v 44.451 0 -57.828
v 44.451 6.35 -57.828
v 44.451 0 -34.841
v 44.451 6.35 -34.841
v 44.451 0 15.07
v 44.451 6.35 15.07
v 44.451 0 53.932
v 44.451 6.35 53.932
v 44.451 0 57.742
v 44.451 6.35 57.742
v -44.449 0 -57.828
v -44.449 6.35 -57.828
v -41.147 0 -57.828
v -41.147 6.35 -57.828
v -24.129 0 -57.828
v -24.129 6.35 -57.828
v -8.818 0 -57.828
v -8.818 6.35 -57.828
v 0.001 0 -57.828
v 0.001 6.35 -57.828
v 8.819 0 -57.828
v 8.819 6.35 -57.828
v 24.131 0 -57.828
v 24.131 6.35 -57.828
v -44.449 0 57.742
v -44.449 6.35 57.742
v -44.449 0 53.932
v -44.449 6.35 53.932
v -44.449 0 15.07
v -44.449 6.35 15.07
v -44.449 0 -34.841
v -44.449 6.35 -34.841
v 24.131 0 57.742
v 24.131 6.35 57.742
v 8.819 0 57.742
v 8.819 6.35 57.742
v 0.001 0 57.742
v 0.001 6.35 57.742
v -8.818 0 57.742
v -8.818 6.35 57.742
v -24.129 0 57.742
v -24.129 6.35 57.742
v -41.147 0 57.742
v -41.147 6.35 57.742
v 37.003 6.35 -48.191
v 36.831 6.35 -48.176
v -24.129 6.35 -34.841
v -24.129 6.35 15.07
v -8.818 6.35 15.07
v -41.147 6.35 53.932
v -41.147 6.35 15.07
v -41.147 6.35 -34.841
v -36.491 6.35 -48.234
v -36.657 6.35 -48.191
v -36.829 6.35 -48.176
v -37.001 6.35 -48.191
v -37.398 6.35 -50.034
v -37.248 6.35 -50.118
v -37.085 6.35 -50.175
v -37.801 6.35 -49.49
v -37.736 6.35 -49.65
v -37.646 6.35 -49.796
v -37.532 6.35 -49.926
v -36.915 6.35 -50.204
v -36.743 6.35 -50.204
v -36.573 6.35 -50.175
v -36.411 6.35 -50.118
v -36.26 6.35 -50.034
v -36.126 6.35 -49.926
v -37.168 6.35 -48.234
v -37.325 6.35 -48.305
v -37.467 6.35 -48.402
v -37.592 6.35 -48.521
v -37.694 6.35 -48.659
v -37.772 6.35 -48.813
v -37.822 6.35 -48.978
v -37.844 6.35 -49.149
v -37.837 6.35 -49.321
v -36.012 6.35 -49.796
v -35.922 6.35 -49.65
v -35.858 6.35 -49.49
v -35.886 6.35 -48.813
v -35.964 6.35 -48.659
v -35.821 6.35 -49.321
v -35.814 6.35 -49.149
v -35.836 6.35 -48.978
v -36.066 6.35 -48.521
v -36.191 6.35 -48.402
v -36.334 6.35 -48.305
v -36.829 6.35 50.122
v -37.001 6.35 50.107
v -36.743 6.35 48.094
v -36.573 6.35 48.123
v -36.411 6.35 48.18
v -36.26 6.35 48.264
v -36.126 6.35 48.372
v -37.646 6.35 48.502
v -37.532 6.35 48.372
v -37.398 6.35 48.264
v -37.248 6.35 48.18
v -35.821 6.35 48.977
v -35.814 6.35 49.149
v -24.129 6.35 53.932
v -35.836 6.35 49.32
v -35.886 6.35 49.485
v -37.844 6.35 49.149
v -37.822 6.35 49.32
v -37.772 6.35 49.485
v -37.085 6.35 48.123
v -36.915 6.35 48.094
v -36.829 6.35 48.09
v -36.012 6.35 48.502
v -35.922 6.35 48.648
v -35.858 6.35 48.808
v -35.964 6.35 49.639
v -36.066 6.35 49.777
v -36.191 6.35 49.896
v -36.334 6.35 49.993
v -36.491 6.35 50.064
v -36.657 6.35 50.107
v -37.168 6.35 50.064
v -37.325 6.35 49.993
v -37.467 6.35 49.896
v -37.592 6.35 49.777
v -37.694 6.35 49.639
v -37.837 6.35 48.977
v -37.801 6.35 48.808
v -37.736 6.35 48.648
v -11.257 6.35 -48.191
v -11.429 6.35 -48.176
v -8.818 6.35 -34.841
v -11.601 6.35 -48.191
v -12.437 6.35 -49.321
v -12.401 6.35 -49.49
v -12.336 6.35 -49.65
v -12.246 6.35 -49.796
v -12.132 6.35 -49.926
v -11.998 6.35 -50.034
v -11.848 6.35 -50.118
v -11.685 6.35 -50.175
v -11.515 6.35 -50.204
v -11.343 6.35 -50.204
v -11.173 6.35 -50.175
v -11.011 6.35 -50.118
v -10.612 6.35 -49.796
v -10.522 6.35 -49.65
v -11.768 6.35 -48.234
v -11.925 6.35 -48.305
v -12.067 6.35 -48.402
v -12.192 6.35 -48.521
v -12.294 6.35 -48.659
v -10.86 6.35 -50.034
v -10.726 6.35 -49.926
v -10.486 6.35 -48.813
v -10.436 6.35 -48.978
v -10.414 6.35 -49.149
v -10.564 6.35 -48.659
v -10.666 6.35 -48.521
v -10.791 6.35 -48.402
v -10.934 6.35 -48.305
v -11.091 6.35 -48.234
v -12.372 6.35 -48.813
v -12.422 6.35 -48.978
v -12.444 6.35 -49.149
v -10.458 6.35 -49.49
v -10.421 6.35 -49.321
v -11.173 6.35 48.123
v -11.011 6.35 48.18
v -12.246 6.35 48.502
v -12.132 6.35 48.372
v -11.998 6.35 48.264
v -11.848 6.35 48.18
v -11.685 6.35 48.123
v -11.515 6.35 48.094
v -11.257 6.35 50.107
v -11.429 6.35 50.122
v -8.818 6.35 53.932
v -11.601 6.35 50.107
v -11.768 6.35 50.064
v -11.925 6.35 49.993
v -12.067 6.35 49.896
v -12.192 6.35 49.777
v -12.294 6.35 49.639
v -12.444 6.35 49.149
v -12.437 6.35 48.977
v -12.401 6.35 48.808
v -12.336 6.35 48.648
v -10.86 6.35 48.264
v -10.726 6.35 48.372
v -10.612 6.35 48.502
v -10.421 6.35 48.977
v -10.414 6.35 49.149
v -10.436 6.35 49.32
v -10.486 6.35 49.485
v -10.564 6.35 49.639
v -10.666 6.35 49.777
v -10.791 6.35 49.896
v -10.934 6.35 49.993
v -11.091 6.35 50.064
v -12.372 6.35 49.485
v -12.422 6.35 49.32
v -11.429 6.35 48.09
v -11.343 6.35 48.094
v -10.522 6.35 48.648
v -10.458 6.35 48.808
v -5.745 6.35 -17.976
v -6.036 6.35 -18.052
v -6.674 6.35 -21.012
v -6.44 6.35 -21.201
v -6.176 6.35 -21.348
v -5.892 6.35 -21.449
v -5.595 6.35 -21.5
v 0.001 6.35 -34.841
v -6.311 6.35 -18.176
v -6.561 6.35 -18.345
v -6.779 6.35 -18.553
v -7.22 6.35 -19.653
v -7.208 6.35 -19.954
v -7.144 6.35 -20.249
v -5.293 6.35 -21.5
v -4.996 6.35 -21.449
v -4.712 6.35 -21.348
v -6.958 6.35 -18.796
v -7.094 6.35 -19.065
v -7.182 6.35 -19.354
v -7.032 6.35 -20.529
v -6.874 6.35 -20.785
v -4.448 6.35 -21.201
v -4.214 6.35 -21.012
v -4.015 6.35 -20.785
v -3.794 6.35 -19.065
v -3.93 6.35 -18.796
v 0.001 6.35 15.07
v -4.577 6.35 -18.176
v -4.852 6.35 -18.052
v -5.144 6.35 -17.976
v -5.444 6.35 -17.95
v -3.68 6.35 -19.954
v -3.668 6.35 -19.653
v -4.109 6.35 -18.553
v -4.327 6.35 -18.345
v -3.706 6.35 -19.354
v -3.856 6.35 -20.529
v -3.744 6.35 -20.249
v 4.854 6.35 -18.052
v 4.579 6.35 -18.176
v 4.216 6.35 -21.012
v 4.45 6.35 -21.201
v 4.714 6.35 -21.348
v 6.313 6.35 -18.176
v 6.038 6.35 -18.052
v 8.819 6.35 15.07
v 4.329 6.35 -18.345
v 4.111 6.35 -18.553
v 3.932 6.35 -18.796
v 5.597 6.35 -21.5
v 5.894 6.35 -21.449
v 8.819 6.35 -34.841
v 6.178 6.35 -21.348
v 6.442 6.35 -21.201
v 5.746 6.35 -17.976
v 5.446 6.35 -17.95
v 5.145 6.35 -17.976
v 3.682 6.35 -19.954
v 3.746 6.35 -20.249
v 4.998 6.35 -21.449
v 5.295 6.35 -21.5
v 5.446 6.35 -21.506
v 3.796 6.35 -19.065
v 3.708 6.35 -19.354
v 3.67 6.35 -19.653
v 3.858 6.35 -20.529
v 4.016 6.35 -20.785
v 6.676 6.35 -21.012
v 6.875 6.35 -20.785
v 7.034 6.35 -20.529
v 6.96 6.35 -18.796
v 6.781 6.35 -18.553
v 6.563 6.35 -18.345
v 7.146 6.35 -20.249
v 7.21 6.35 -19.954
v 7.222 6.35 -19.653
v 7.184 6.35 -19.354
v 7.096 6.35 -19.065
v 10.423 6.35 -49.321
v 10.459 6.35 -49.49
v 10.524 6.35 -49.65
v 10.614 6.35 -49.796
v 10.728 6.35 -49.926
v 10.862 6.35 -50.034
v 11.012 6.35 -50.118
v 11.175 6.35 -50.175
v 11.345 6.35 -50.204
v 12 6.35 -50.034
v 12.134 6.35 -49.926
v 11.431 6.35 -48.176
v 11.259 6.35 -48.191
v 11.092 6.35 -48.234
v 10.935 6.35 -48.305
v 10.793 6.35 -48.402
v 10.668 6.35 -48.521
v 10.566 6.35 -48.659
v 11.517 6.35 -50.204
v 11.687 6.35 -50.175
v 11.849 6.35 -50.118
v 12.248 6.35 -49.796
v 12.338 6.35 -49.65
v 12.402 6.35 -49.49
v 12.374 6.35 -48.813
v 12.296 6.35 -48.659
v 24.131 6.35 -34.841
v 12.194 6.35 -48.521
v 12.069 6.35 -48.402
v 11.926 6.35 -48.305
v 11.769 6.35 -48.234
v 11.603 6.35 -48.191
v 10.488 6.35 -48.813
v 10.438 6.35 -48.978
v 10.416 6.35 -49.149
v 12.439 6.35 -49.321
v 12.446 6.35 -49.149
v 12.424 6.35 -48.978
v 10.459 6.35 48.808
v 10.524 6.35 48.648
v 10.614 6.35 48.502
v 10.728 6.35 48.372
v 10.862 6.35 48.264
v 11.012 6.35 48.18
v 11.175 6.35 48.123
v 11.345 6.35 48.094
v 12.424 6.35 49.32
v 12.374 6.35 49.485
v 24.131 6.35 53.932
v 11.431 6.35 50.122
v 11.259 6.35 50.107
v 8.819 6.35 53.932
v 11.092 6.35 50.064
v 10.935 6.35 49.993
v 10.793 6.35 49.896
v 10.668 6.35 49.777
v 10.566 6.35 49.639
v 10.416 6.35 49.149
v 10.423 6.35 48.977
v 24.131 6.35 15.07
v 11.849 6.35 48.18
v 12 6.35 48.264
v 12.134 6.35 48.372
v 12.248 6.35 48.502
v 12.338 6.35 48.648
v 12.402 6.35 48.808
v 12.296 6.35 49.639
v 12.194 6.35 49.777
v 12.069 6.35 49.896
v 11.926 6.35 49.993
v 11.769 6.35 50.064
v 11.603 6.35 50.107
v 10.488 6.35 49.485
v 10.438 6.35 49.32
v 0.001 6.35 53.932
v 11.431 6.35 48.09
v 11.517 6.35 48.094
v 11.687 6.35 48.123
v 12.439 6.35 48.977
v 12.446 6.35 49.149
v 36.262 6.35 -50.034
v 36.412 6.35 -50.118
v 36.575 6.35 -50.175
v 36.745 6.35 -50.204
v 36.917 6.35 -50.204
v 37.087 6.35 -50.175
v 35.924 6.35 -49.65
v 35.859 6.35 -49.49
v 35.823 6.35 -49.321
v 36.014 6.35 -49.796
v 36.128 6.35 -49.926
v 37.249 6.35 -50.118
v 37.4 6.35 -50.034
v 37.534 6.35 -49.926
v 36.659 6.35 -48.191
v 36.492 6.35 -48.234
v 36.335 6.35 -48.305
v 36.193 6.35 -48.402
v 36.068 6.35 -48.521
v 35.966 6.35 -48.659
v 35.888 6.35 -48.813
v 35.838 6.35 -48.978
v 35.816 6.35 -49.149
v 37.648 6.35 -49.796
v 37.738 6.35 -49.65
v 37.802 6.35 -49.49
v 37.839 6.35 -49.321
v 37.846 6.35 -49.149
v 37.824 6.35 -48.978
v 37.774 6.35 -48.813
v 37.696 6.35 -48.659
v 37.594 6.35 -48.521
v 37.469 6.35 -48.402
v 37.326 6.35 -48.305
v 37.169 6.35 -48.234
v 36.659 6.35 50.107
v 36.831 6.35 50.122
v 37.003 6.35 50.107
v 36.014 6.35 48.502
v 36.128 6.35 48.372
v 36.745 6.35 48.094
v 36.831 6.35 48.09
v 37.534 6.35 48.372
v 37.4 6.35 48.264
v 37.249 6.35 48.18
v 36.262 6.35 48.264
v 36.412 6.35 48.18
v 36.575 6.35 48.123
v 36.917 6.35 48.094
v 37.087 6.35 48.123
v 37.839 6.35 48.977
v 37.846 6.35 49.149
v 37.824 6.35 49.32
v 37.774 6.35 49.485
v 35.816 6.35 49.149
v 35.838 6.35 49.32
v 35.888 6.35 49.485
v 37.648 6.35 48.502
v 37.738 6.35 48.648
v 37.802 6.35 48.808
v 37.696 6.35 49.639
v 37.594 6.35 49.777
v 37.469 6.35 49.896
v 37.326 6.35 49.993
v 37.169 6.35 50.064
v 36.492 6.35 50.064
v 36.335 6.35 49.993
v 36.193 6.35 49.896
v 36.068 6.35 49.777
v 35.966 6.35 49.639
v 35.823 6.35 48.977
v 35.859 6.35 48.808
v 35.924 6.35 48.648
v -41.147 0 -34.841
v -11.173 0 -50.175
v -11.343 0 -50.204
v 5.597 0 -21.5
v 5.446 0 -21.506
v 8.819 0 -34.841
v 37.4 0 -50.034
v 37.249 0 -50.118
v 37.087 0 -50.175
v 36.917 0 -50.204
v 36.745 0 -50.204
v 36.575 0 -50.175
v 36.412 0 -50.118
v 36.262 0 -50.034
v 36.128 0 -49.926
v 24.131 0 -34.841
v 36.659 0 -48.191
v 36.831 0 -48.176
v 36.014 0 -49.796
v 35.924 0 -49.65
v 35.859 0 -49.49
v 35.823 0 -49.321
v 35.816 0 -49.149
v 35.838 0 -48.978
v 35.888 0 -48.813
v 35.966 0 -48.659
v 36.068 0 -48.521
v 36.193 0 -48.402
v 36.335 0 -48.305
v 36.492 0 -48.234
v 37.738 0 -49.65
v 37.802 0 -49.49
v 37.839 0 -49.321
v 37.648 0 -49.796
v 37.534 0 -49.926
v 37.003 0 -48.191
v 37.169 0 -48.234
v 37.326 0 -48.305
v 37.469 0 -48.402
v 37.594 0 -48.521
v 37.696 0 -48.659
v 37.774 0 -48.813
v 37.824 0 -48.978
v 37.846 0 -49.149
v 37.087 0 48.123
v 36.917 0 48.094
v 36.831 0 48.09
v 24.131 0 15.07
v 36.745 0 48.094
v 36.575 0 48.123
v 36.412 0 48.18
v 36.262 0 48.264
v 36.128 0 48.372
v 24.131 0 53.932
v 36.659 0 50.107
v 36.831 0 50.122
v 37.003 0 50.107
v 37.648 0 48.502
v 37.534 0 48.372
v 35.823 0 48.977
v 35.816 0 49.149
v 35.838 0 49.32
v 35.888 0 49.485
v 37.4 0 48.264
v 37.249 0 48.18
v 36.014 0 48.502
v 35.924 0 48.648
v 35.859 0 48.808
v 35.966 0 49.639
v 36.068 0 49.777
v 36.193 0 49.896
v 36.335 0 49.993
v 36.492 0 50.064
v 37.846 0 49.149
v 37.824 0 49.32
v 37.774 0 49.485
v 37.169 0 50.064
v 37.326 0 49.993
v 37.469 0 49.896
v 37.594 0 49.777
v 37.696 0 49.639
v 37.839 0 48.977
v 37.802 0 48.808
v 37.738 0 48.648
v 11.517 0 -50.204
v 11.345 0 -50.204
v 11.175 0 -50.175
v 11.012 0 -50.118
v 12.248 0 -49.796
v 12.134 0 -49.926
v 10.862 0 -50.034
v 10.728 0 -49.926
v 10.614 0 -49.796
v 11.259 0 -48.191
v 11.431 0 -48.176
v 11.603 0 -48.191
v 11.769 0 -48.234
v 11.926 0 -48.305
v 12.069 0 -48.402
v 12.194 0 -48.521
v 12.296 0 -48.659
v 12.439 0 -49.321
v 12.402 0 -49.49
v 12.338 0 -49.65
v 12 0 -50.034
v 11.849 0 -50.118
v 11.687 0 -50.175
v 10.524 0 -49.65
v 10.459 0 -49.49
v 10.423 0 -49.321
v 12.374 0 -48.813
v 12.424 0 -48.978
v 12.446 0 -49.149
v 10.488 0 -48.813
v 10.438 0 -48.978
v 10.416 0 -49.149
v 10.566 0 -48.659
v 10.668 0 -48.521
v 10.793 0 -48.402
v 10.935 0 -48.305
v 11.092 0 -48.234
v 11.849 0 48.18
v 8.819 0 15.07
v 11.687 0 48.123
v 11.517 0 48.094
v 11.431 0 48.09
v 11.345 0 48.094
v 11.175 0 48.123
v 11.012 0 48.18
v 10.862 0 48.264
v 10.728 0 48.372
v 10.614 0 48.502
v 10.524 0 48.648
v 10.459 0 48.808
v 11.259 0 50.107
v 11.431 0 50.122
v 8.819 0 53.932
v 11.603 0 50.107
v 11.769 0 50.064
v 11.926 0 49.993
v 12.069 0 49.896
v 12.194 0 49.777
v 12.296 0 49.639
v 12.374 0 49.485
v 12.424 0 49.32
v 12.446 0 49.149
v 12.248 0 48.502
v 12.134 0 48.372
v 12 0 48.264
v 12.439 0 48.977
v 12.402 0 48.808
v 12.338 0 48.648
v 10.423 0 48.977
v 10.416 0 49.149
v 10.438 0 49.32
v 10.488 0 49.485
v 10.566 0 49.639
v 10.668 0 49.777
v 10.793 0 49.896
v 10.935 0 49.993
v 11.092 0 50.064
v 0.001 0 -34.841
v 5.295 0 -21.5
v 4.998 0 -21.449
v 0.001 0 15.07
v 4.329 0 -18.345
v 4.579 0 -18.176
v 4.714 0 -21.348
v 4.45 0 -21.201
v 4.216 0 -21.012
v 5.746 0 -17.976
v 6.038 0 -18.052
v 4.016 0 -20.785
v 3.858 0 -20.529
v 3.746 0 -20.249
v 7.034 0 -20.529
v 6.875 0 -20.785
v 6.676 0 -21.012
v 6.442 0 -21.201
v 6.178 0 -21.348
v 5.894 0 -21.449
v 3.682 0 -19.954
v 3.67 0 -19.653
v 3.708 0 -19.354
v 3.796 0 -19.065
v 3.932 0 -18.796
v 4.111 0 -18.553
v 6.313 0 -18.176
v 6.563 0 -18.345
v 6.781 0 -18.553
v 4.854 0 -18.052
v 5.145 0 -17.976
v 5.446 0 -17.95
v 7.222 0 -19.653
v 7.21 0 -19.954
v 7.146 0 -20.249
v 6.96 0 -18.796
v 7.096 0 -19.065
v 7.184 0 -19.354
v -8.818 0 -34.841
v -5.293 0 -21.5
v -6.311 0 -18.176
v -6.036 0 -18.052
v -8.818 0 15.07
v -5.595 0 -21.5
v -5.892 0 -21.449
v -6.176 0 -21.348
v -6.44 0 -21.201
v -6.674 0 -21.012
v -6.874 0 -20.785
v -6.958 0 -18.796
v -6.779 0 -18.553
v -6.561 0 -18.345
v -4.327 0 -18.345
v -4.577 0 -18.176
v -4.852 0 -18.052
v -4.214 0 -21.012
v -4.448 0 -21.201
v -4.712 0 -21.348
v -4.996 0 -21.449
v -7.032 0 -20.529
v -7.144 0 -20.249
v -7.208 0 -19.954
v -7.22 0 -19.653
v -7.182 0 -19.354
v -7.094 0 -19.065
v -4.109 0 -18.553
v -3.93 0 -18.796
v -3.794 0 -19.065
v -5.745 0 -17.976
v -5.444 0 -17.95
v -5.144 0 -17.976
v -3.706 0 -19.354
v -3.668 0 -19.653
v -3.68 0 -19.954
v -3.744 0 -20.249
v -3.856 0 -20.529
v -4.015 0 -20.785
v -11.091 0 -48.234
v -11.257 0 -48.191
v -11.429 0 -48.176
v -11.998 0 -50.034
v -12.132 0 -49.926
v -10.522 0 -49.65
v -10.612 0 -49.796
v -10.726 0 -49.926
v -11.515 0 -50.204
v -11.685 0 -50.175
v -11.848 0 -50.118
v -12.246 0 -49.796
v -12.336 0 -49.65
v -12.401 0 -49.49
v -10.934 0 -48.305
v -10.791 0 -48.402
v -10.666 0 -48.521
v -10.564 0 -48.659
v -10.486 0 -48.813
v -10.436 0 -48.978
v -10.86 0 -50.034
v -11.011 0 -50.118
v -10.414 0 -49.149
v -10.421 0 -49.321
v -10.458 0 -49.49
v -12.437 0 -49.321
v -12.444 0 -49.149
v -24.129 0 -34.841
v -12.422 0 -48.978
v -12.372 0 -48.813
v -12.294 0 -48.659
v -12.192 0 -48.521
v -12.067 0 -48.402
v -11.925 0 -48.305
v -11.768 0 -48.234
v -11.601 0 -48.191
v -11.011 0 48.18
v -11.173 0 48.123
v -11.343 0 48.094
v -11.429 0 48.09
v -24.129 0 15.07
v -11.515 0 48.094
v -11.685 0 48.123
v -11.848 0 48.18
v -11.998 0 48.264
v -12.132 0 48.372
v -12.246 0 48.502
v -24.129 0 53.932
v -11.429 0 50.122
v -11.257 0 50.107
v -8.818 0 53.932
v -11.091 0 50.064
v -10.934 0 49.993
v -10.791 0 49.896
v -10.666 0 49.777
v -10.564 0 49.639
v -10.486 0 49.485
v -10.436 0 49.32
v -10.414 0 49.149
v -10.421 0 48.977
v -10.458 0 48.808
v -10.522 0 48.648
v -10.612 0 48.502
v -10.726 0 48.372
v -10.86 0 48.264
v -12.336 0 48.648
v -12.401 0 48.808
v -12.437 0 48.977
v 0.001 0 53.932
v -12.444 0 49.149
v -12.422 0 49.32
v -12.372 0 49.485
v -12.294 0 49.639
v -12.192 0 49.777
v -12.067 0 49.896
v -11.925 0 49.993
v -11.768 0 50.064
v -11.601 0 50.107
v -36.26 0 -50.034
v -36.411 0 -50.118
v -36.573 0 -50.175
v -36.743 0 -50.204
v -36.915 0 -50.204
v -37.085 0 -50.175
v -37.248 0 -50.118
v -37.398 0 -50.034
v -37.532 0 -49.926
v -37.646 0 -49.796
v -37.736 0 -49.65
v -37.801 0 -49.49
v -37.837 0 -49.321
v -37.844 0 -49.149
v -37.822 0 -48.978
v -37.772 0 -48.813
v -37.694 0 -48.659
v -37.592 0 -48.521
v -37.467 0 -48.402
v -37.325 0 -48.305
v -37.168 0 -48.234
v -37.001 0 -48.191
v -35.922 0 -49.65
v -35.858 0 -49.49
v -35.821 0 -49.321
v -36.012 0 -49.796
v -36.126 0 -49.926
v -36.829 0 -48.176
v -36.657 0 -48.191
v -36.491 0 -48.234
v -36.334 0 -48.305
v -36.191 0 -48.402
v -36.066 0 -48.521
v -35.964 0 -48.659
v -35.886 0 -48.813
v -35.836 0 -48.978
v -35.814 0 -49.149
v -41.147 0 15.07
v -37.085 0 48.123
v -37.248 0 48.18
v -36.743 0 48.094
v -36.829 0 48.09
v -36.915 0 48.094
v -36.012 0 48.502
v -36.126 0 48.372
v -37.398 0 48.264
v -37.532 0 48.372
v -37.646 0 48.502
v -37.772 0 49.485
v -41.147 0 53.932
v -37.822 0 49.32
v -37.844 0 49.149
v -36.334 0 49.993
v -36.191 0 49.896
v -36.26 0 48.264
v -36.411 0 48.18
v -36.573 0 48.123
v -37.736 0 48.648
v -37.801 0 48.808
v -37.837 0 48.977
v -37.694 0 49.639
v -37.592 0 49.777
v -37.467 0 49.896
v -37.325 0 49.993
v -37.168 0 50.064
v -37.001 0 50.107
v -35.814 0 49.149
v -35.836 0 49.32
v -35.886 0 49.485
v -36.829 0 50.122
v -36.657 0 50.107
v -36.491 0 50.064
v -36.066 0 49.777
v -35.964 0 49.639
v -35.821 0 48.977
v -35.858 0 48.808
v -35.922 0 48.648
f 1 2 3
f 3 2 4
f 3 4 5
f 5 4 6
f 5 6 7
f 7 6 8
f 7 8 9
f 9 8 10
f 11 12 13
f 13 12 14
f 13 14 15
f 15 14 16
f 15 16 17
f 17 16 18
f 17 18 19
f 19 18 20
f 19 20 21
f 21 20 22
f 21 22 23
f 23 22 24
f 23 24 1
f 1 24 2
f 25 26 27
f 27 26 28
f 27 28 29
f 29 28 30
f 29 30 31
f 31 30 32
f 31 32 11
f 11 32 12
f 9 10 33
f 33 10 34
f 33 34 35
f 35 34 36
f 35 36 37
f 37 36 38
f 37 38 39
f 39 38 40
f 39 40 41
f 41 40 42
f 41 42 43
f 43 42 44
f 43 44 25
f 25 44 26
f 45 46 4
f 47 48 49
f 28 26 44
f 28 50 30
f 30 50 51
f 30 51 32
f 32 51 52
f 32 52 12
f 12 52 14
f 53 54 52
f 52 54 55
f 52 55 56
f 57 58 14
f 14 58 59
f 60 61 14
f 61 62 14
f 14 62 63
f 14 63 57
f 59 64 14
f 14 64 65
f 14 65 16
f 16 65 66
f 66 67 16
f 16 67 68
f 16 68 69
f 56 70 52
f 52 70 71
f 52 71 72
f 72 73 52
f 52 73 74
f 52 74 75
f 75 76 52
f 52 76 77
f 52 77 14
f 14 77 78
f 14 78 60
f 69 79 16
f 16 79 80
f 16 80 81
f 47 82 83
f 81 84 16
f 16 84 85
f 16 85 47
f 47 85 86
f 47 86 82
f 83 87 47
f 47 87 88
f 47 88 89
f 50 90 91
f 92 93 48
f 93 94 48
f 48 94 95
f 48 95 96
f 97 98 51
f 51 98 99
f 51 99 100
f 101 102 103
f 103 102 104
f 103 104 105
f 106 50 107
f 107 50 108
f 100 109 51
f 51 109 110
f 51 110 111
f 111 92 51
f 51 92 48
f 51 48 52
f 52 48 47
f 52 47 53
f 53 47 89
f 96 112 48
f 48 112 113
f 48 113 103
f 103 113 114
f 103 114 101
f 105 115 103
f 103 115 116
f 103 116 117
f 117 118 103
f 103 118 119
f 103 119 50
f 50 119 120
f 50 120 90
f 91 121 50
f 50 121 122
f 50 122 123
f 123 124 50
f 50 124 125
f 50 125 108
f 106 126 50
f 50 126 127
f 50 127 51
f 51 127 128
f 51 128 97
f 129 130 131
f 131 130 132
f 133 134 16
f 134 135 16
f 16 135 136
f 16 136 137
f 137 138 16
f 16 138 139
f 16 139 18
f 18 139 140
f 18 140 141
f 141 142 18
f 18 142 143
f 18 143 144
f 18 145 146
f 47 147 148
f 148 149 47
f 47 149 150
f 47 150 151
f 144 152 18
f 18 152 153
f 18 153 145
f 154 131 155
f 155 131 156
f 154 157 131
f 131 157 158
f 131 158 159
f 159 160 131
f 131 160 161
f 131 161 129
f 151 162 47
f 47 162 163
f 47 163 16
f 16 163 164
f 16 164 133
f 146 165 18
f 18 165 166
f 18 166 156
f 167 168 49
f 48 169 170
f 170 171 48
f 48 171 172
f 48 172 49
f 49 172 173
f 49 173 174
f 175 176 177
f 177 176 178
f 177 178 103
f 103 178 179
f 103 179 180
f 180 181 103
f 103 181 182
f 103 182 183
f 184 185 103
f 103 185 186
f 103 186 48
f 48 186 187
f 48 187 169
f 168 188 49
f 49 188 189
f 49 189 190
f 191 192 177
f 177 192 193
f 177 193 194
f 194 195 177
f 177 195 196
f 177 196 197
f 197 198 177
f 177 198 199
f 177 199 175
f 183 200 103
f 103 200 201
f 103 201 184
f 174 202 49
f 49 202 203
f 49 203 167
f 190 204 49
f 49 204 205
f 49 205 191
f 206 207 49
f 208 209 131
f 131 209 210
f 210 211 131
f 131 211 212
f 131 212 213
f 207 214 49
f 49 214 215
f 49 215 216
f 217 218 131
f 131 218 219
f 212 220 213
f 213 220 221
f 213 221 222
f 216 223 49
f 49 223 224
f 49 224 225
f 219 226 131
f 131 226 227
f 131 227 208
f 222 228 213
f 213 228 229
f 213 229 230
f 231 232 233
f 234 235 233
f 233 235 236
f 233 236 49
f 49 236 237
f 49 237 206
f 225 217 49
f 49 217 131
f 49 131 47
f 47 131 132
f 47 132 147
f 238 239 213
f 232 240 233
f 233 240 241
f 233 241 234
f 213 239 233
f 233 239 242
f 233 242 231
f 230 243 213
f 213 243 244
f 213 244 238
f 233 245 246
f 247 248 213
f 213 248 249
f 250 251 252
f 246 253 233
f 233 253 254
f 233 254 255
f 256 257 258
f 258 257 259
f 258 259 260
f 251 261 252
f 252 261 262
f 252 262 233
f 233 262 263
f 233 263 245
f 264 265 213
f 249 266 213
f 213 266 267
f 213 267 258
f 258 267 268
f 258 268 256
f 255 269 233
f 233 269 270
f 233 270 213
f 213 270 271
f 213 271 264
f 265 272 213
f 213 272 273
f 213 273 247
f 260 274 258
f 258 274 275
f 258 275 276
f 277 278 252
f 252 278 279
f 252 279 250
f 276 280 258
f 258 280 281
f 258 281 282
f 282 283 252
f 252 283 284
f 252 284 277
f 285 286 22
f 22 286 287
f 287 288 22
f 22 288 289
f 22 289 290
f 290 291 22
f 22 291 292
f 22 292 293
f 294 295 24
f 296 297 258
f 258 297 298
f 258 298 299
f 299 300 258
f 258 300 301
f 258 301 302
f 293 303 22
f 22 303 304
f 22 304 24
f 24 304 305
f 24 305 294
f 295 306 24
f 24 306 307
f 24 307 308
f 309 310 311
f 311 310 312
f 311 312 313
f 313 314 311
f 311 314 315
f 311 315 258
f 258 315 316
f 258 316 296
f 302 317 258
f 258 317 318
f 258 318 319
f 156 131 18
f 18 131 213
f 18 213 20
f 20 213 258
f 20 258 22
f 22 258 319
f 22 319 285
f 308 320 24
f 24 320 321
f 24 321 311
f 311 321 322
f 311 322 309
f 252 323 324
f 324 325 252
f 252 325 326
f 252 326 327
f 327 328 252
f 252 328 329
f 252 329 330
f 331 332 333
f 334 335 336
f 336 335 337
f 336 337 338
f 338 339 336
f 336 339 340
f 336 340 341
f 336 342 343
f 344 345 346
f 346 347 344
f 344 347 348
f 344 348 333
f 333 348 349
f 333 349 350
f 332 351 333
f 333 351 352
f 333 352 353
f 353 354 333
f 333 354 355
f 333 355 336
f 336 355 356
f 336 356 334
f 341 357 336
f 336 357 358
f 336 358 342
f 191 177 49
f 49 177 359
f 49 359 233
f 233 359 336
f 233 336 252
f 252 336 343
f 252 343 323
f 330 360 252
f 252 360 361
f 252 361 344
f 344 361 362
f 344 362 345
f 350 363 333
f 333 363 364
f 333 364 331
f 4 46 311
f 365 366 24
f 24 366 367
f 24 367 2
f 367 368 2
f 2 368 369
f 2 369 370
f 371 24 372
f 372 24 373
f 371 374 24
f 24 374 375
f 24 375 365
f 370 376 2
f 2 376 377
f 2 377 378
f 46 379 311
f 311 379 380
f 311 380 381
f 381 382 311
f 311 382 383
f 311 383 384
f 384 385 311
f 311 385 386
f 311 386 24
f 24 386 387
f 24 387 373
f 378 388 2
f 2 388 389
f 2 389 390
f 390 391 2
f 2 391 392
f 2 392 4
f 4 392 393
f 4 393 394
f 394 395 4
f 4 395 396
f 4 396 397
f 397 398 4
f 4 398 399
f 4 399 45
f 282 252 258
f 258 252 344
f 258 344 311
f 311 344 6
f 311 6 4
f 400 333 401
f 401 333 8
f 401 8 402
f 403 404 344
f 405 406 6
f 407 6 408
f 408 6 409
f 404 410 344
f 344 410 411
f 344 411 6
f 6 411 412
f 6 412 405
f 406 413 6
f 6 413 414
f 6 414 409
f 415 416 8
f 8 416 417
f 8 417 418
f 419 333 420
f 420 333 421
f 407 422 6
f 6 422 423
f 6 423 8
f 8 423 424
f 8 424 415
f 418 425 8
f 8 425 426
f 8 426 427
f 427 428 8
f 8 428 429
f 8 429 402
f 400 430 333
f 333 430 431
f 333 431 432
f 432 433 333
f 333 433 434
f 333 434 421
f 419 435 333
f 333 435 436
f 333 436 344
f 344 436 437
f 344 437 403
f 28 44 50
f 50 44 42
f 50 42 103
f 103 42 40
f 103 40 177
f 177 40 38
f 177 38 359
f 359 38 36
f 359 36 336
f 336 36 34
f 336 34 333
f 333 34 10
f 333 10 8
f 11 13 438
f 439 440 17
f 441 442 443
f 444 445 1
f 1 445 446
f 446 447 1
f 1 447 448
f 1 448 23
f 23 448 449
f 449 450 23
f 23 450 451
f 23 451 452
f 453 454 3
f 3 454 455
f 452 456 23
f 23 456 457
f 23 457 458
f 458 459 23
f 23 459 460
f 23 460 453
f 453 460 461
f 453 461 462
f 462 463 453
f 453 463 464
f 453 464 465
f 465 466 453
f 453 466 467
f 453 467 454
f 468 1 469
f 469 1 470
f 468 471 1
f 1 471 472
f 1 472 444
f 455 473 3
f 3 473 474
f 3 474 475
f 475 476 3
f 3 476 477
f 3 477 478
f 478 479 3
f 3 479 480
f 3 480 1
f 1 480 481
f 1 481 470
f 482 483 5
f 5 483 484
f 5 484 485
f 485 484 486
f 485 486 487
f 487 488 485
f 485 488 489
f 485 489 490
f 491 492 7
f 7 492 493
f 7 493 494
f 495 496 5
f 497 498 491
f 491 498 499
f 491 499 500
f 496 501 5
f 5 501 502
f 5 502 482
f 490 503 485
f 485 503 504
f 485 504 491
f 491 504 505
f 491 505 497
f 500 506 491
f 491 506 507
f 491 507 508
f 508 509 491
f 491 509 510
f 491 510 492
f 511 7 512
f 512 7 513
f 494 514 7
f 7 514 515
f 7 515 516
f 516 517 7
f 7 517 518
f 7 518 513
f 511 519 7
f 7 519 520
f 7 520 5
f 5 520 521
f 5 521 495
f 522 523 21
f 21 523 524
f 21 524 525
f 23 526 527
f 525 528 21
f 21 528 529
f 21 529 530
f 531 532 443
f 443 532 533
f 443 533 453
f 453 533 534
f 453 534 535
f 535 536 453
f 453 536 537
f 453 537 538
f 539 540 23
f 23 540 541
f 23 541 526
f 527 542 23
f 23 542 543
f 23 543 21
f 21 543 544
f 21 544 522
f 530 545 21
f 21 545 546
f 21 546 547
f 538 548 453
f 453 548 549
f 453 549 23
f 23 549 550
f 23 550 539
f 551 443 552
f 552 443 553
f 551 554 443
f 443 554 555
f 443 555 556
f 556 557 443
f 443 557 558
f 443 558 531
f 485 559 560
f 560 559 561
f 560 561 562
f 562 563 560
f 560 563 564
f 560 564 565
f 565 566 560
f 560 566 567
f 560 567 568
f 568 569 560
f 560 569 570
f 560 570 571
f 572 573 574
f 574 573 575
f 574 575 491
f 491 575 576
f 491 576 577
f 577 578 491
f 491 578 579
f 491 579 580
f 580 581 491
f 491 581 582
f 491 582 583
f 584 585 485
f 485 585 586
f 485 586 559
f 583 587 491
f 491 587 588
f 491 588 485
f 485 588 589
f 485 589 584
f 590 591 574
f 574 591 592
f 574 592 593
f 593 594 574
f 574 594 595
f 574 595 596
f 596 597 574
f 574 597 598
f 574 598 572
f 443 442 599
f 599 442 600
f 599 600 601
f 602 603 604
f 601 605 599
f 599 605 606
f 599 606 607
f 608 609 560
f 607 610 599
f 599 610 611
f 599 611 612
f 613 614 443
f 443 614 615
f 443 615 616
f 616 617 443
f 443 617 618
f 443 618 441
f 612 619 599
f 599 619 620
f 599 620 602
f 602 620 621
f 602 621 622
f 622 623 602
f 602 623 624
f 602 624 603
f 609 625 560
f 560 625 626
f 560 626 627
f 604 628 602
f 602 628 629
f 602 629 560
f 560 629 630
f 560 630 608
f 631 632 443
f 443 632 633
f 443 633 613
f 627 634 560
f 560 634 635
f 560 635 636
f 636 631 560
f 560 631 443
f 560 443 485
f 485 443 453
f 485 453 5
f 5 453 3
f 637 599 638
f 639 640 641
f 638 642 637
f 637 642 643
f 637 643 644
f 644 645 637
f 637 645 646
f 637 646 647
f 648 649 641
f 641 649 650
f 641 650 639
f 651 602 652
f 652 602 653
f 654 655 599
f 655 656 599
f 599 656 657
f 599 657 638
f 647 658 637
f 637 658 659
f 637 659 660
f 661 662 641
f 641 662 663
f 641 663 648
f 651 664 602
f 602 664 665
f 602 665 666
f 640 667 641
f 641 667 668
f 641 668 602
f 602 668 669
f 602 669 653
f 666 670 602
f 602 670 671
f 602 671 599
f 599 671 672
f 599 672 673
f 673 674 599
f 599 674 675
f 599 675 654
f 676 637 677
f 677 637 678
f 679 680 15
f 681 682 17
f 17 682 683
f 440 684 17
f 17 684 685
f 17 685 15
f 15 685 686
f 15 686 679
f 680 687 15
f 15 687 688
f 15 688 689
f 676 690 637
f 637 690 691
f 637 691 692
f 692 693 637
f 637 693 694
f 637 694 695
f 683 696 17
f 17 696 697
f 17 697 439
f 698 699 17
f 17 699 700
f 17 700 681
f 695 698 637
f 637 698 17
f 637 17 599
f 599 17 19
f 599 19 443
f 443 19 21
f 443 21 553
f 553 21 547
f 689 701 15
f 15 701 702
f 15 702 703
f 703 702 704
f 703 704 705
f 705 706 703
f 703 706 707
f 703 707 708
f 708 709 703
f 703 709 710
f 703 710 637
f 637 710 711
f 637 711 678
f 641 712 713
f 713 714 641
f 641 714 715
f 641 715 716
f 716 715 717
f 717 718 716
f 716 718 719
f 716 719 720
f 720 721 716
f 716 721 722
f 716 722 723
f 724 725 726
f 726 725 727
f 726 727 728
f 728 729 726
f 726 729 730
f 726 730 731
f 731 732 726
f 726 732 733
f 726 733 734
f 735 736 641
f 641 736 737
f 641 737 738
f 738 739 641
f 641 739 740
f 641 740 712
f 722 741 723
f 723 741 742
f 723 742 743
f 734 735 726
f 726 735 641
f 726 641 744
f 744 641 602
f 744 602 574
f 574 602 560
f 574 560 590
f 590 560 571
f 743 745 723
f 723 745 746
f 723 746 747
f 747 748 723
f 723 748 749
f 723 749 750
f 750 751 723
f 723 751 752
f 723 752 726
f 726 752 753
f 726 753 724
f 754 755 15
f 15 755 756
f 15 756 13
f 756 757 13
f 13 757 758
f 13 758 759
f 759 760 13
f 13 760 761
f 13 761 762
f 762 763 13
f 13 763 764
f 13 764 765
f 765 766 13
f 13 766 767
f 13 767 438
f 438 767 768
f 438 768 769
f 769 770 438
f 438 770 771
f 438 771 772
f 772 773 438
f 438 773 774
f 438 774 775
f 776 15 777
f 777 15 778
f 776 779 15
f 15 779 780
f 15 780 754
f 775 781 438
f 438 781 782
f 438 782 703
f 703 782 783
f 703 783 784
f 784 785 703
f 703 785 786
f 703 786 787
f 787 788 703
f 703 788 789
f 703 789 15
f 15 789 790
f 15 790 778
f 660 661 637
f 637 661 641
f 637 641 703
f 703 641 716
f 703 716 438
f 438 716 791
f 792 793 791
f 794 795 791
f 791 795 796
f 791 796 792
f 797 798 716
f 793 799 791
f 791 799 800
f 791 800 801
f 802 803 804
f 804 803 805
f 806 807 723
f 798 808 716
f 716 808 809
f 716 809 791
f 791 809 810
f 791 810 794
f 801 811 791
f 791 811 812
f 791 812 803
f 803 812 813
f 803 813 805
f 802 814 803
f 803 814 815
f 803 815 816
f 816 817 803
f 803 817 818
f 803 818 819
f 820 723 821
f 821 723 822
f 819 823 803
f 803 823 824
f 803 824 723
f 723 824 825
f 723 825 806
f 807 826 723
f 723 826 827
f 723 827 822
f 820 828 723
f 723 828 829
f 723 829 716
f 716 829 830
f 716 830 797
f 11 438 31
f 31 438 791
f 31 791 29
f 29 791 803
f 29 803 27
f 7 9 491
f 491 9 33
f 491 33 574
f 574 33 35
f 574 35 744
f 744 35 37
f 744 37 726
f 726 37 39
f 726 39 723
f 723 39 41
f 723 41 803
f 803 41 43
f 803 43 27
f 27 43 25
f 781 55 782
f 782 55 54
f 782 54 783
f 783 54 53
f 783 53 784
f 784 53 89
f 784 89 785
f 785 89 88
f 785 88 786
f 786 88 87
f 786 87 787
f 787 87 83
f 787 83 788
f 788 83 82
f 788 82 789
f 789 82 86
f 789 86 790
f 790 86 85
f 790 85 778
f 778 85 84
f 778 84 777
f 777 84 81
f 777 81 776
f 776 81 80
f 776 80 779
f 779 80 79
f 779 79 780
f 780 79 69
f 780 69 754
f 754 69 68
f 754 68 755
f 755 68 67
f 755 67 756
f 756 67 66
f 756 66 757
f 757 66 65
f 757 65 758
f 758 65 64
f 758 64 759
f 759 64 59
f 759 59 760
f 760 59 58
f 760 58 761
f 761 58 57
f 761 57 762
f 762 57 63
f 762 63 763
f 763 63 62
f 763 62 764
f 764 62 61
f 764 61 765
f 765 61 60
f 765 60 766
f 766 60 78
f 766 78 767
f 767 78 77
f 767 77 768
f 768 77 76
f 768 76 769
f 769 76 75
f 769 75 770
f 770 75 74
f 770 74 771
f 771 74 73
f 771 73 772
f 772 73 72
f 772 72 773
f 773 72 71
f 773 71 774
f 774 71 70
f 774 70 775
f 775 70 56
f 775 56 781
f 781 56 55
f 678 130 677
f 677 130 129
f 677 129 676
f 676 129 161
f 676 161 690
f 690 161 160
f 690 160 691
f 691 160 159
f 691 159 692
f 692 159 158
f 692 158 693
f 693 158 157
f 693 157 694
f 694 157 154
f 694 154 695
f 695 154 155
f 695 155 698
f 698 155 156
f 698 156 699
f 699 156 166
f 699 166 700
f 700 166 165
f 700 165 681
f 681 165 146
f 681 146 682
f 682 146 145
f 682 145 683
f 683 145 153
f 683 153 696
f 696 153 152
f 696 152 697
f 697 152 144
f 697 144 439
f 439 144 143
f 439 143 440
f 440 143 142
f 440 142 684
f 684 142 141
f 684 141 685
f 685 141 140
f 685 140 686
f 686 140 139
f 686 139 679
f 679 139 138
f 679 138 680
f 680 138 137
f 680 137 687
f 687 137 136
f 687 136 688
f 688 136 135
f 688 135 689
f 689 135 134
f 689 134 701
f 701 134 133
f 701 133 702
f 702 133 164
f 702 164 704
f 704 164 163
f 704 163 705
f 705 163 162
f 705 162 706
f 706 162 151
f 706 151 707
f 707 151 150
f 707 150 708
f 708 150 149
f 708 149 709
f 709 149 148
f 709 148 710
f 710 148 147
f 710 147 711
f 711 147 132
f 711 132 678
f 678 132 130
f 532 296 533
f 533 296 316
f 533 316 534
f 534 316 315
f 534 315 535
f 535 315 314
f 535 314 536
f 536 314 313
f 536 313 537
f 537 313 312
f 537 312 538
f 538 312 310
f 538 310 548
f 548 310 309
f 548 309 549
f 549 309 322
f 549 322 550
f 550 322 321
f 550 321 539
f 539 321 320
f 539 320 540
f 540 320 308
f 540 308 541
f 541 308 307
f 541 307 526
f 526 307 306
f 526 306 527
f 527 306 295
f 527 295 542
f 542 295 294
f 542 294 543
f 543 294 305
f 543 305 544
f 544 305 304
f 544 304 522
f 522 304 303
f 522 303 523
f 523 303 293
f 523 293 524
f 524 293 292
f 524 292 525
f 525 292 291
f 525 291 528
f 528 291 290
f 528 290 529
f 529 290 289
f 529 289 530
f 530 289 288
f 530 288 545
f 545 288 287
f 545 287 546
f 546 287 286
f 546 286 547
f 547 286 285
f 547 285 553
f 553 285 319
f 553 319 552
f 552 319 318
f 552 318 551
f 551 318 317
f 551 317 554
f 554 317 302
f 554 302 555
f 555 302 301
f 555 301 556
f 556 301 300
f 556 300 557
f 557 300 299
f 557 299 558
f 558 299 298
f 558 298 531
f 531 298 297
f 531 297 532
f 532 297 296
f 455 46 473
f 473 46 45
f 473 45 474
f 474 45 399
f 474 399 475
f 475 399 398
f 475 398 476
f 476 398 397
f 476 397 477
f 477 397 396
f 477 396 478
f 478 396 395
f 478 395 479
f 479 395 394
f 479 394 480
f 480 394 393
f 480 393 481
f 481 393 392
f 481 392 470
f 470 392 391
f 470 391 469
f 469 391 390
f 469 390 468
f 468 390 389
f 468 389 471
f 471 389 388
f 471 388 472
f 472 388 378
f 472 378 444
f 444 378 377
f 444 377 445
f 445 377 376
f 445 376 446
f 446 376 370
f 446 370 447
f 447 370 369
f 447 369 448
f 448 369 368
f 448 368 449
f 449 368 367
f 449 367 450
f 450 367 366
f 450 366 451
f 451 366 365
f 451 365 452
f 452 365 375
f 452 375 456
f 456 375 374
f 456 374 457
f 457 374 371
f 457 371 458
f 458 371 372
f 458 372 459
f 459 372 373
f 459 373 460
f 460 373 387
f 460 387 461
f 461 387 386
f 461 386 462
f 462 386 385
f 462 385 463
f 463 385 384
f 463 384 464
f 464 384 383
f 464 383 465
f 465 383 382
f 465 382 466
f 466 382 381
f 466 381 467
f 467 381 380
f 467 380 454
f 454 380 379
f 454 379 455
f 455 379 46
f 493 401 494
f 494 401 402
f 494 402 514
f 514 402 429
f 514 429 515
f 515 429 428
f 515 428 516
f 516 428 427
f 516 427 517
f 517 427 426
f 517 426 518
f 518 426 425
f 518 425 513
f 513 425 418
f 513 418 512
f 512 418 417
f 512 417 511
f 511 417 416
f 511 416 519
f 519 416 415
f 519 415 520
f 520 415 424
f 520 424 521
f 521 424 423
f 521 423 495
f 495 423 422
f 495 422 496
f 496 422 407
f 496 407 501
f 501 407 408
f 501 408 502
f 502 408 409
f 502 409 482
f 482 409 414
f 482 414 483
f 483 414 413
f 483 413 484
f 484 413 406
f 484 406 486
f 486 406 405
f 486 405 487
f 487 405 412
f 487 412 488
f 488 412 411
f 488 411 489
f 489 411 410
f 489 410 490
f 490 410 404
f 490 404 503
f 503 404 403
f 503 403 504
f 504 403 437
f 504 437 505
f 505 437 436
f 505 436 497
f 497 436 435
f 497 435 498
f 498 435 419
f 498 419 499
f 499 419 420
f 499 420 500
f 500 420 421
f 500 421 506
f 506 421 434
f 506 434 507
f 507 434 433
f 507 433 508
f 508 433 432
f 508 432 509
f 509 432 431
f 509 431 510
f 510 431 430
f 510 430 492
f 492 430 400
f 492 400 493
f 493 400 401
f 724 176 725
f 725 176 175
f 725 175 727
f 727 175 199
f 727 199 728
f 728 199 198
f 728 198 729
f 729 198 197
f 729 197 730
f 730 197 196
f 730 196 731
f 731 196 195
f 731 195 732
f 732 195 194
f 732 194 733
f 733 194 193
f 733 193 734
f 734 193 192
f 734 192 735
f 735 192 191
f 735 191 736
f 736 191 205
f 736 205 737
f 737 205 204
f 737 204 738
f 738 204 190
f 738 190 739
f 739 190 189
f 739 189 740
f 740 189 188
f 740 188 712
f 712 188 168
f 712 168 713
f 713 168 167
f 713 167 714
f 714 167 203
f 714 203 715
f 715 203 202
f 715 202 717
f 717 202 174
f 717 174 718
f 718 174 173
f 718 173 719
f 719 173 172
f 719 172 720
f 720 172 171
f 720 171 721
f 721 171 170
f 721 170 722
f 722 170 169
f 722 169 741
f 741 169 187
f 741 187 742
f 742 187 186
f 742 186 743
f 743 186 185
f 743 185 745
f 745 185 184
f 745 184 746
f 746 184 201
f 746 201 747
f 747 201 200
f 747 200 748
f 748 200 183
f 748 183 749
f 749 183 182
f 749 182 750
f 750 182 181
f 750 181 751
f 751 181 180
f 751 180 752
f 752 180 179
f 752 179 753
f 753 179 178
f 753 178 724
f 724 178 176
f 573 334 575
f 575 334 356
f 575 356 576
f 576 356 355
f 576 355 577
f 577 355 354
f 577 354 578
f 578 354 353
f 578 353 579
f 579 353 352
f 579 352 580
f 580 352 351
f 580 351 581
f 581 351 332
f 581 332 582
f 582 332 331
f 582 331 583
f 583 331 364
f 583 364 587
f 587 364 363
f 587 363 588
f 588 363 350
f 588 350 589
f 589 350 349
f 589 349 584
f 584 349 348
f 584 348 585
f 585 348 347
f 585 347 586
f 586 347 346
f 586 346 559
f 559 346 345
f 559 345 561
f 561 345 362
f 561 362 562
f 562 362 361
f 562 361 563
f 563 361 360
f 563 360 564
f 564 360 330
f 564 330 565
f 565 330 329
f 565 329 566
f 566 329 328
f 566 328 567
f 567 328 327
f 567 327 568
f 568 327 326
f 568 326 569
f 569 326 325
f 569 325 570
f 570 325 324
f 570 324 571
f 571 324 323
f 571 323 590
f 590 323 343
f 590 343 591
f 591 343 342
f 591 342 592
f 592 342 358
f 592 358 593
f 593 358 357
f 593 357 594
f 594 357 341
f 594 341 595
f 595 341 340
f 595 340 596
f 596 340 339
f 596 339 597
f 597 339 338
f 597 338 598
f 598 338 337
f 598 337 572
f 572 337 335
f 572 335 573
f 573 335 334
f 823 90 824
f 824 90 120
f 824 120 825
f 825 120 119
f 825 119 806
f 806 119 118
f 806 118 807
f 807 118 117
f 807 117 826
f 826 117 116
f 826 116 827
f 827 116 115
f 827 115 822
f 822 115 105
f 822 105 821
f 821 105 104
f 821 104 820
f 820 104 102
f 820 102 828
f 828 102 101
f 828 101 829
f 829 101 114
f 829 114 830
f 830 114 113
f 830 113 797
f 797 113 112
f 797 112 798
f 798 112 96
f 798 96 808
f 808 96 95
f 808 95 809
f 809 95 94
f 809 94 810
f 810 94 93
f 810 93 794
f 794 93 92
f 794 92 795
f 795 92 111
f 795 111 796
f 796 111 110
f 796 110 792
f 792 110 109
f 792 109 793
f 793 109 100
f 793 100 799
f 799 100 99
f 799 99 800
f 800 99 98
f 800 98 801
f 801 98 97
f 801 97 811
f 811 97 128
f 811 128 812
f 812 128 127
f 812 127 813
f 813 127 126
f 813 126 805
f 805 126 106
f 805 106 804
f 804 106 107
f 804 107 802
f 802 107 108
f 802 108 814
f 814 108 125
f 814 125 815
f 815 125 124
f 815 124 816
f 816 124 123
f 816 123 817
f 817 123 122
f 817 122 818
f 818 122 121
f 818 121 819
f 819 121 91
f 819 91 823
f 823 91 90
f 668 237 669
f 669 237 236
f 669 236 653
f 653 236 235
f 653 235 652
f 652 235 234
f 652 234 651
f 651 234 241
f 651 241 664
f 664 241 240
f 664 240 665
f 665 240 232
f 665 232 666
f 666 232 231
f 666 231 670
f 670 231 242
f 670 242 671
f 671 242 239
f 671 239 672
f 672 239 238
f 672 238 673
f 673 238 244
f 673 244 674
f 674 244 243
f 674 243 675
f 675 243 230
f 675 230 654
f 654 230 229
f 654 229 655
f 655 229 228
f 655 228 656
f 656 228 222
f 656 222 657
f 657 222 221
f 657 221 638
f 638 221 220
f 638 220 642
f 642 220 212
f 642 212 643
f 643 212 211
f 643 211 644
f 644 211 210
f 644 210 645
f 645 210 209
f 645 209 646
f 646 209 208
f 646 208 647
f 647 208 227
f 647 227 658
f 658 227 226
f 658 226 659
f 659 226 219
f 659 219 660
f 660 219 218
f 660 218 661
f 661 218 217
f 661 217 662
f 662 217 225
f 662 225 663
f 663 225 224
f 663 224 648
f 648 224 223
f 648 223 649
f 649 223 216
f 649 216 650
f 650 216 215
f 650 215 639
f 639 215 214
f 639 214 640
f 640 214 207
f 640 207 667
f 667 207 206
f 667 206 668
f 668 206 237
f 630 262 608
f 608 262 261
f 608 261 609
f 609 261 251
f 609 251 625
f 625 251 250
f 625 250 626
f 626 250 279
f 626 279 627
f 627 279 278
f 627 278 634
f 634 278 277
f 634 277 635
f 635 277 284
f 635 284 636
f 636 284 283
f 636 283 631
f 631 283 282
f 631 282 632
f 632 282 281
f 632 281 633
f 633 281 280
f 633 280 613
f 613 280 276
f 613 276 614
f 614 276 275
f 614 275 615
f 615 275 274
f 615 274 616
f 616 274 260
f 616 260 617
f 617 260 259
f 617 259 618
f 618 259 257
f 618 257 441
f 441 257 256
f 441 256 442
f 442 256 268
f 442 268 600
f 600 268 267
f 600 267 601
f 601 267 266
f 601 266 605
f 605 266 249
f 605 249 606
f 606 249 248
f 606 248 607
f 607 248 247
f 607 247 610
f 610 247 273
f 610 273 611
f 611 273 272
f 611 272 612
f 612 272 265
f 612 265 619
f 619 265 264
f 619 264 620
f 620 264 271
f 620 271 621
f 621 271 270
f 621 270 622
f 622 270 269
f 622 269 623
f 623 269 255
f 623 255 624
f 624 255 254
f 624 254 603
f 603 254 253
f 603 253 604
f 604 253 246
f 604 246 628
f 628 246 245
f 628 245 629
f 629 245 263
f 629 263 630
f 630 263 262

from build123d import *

# Parameters (mm, degrees)
SKETCH1_W           = 88.9
SKETCH1_H           = 115.57
BOSS_EXTRUDE1_DEPTH = 6.35
SKETCH2_R           = 1.016
CUT_EXTRUDE1_DEPTH  = 7.35
SKETCH4_R           = 1.778
CUT_EXTRUDE2_DEPTH  = 7.35


with BuildPart() as part:
    # Sketch1 → Boss-Extrude1 (new body)
    with BuildSketch(Plane(origin=(0, 0, 0), x_dir=(1, 0, 0), z_dir=(0, 1, 0))):
        Rectangle(SKETCH1_W, SKETCH1_H)
    extrude(amount=BOSS_EXTRUDE1_DEPTH)

    # Sketch2 → Cut-Extrude1 (cut, through all)
    with BuildSketch(Plane(origin=(0, 6.35, 0), x_dir=(1, 0, 0), z_dir=(0, 1, 0))):
        with Locations((-36.83, 49.149)):
            Circle(SKETCH2_R)
        with Locations((-11.43, 49.149)):
            Circle(SKETCH2_R)
        with Locations((11.43, 49.149)):
            Circle(SKETCH2_R)
        with Locations((36.83, 49.149)):
            Circle(SKETCH2_R)
        with Locations((36.83, -49.149)):
            Circle(SKETCH2_R)
        with Locations((-11.43, -49.149)):
            Circle(SKETCH2_R)
        with Locations((11.43, -49.149)):
            Circle(SKETCH2_R)
        with Locations((-36.83, -49.149)):
            Circle(SKETCH2_R)
    extrude(amount=-CUT_EXTRUDE1_DEPTH, mode=Mode.SUBTRACT)

    # Sketch4 → Cut-Extrude2 (cut, through all)
    with BuildSketch(Plane(origin=(0, 6.35, 0), x_dir=(1, 0, 0), z_dir=(0, 1, 0))):
        with Locations((-5.445, 19.685)):
            Circle(SKETCH4_R)
        with Locations((5.445, 19.685)):
            Circle(SKETCH4_R)
    extrude(amount=-CUT_EXTRUDE2_DEPTH, mode=Mode.SUBTRACT)


solid = part.part
